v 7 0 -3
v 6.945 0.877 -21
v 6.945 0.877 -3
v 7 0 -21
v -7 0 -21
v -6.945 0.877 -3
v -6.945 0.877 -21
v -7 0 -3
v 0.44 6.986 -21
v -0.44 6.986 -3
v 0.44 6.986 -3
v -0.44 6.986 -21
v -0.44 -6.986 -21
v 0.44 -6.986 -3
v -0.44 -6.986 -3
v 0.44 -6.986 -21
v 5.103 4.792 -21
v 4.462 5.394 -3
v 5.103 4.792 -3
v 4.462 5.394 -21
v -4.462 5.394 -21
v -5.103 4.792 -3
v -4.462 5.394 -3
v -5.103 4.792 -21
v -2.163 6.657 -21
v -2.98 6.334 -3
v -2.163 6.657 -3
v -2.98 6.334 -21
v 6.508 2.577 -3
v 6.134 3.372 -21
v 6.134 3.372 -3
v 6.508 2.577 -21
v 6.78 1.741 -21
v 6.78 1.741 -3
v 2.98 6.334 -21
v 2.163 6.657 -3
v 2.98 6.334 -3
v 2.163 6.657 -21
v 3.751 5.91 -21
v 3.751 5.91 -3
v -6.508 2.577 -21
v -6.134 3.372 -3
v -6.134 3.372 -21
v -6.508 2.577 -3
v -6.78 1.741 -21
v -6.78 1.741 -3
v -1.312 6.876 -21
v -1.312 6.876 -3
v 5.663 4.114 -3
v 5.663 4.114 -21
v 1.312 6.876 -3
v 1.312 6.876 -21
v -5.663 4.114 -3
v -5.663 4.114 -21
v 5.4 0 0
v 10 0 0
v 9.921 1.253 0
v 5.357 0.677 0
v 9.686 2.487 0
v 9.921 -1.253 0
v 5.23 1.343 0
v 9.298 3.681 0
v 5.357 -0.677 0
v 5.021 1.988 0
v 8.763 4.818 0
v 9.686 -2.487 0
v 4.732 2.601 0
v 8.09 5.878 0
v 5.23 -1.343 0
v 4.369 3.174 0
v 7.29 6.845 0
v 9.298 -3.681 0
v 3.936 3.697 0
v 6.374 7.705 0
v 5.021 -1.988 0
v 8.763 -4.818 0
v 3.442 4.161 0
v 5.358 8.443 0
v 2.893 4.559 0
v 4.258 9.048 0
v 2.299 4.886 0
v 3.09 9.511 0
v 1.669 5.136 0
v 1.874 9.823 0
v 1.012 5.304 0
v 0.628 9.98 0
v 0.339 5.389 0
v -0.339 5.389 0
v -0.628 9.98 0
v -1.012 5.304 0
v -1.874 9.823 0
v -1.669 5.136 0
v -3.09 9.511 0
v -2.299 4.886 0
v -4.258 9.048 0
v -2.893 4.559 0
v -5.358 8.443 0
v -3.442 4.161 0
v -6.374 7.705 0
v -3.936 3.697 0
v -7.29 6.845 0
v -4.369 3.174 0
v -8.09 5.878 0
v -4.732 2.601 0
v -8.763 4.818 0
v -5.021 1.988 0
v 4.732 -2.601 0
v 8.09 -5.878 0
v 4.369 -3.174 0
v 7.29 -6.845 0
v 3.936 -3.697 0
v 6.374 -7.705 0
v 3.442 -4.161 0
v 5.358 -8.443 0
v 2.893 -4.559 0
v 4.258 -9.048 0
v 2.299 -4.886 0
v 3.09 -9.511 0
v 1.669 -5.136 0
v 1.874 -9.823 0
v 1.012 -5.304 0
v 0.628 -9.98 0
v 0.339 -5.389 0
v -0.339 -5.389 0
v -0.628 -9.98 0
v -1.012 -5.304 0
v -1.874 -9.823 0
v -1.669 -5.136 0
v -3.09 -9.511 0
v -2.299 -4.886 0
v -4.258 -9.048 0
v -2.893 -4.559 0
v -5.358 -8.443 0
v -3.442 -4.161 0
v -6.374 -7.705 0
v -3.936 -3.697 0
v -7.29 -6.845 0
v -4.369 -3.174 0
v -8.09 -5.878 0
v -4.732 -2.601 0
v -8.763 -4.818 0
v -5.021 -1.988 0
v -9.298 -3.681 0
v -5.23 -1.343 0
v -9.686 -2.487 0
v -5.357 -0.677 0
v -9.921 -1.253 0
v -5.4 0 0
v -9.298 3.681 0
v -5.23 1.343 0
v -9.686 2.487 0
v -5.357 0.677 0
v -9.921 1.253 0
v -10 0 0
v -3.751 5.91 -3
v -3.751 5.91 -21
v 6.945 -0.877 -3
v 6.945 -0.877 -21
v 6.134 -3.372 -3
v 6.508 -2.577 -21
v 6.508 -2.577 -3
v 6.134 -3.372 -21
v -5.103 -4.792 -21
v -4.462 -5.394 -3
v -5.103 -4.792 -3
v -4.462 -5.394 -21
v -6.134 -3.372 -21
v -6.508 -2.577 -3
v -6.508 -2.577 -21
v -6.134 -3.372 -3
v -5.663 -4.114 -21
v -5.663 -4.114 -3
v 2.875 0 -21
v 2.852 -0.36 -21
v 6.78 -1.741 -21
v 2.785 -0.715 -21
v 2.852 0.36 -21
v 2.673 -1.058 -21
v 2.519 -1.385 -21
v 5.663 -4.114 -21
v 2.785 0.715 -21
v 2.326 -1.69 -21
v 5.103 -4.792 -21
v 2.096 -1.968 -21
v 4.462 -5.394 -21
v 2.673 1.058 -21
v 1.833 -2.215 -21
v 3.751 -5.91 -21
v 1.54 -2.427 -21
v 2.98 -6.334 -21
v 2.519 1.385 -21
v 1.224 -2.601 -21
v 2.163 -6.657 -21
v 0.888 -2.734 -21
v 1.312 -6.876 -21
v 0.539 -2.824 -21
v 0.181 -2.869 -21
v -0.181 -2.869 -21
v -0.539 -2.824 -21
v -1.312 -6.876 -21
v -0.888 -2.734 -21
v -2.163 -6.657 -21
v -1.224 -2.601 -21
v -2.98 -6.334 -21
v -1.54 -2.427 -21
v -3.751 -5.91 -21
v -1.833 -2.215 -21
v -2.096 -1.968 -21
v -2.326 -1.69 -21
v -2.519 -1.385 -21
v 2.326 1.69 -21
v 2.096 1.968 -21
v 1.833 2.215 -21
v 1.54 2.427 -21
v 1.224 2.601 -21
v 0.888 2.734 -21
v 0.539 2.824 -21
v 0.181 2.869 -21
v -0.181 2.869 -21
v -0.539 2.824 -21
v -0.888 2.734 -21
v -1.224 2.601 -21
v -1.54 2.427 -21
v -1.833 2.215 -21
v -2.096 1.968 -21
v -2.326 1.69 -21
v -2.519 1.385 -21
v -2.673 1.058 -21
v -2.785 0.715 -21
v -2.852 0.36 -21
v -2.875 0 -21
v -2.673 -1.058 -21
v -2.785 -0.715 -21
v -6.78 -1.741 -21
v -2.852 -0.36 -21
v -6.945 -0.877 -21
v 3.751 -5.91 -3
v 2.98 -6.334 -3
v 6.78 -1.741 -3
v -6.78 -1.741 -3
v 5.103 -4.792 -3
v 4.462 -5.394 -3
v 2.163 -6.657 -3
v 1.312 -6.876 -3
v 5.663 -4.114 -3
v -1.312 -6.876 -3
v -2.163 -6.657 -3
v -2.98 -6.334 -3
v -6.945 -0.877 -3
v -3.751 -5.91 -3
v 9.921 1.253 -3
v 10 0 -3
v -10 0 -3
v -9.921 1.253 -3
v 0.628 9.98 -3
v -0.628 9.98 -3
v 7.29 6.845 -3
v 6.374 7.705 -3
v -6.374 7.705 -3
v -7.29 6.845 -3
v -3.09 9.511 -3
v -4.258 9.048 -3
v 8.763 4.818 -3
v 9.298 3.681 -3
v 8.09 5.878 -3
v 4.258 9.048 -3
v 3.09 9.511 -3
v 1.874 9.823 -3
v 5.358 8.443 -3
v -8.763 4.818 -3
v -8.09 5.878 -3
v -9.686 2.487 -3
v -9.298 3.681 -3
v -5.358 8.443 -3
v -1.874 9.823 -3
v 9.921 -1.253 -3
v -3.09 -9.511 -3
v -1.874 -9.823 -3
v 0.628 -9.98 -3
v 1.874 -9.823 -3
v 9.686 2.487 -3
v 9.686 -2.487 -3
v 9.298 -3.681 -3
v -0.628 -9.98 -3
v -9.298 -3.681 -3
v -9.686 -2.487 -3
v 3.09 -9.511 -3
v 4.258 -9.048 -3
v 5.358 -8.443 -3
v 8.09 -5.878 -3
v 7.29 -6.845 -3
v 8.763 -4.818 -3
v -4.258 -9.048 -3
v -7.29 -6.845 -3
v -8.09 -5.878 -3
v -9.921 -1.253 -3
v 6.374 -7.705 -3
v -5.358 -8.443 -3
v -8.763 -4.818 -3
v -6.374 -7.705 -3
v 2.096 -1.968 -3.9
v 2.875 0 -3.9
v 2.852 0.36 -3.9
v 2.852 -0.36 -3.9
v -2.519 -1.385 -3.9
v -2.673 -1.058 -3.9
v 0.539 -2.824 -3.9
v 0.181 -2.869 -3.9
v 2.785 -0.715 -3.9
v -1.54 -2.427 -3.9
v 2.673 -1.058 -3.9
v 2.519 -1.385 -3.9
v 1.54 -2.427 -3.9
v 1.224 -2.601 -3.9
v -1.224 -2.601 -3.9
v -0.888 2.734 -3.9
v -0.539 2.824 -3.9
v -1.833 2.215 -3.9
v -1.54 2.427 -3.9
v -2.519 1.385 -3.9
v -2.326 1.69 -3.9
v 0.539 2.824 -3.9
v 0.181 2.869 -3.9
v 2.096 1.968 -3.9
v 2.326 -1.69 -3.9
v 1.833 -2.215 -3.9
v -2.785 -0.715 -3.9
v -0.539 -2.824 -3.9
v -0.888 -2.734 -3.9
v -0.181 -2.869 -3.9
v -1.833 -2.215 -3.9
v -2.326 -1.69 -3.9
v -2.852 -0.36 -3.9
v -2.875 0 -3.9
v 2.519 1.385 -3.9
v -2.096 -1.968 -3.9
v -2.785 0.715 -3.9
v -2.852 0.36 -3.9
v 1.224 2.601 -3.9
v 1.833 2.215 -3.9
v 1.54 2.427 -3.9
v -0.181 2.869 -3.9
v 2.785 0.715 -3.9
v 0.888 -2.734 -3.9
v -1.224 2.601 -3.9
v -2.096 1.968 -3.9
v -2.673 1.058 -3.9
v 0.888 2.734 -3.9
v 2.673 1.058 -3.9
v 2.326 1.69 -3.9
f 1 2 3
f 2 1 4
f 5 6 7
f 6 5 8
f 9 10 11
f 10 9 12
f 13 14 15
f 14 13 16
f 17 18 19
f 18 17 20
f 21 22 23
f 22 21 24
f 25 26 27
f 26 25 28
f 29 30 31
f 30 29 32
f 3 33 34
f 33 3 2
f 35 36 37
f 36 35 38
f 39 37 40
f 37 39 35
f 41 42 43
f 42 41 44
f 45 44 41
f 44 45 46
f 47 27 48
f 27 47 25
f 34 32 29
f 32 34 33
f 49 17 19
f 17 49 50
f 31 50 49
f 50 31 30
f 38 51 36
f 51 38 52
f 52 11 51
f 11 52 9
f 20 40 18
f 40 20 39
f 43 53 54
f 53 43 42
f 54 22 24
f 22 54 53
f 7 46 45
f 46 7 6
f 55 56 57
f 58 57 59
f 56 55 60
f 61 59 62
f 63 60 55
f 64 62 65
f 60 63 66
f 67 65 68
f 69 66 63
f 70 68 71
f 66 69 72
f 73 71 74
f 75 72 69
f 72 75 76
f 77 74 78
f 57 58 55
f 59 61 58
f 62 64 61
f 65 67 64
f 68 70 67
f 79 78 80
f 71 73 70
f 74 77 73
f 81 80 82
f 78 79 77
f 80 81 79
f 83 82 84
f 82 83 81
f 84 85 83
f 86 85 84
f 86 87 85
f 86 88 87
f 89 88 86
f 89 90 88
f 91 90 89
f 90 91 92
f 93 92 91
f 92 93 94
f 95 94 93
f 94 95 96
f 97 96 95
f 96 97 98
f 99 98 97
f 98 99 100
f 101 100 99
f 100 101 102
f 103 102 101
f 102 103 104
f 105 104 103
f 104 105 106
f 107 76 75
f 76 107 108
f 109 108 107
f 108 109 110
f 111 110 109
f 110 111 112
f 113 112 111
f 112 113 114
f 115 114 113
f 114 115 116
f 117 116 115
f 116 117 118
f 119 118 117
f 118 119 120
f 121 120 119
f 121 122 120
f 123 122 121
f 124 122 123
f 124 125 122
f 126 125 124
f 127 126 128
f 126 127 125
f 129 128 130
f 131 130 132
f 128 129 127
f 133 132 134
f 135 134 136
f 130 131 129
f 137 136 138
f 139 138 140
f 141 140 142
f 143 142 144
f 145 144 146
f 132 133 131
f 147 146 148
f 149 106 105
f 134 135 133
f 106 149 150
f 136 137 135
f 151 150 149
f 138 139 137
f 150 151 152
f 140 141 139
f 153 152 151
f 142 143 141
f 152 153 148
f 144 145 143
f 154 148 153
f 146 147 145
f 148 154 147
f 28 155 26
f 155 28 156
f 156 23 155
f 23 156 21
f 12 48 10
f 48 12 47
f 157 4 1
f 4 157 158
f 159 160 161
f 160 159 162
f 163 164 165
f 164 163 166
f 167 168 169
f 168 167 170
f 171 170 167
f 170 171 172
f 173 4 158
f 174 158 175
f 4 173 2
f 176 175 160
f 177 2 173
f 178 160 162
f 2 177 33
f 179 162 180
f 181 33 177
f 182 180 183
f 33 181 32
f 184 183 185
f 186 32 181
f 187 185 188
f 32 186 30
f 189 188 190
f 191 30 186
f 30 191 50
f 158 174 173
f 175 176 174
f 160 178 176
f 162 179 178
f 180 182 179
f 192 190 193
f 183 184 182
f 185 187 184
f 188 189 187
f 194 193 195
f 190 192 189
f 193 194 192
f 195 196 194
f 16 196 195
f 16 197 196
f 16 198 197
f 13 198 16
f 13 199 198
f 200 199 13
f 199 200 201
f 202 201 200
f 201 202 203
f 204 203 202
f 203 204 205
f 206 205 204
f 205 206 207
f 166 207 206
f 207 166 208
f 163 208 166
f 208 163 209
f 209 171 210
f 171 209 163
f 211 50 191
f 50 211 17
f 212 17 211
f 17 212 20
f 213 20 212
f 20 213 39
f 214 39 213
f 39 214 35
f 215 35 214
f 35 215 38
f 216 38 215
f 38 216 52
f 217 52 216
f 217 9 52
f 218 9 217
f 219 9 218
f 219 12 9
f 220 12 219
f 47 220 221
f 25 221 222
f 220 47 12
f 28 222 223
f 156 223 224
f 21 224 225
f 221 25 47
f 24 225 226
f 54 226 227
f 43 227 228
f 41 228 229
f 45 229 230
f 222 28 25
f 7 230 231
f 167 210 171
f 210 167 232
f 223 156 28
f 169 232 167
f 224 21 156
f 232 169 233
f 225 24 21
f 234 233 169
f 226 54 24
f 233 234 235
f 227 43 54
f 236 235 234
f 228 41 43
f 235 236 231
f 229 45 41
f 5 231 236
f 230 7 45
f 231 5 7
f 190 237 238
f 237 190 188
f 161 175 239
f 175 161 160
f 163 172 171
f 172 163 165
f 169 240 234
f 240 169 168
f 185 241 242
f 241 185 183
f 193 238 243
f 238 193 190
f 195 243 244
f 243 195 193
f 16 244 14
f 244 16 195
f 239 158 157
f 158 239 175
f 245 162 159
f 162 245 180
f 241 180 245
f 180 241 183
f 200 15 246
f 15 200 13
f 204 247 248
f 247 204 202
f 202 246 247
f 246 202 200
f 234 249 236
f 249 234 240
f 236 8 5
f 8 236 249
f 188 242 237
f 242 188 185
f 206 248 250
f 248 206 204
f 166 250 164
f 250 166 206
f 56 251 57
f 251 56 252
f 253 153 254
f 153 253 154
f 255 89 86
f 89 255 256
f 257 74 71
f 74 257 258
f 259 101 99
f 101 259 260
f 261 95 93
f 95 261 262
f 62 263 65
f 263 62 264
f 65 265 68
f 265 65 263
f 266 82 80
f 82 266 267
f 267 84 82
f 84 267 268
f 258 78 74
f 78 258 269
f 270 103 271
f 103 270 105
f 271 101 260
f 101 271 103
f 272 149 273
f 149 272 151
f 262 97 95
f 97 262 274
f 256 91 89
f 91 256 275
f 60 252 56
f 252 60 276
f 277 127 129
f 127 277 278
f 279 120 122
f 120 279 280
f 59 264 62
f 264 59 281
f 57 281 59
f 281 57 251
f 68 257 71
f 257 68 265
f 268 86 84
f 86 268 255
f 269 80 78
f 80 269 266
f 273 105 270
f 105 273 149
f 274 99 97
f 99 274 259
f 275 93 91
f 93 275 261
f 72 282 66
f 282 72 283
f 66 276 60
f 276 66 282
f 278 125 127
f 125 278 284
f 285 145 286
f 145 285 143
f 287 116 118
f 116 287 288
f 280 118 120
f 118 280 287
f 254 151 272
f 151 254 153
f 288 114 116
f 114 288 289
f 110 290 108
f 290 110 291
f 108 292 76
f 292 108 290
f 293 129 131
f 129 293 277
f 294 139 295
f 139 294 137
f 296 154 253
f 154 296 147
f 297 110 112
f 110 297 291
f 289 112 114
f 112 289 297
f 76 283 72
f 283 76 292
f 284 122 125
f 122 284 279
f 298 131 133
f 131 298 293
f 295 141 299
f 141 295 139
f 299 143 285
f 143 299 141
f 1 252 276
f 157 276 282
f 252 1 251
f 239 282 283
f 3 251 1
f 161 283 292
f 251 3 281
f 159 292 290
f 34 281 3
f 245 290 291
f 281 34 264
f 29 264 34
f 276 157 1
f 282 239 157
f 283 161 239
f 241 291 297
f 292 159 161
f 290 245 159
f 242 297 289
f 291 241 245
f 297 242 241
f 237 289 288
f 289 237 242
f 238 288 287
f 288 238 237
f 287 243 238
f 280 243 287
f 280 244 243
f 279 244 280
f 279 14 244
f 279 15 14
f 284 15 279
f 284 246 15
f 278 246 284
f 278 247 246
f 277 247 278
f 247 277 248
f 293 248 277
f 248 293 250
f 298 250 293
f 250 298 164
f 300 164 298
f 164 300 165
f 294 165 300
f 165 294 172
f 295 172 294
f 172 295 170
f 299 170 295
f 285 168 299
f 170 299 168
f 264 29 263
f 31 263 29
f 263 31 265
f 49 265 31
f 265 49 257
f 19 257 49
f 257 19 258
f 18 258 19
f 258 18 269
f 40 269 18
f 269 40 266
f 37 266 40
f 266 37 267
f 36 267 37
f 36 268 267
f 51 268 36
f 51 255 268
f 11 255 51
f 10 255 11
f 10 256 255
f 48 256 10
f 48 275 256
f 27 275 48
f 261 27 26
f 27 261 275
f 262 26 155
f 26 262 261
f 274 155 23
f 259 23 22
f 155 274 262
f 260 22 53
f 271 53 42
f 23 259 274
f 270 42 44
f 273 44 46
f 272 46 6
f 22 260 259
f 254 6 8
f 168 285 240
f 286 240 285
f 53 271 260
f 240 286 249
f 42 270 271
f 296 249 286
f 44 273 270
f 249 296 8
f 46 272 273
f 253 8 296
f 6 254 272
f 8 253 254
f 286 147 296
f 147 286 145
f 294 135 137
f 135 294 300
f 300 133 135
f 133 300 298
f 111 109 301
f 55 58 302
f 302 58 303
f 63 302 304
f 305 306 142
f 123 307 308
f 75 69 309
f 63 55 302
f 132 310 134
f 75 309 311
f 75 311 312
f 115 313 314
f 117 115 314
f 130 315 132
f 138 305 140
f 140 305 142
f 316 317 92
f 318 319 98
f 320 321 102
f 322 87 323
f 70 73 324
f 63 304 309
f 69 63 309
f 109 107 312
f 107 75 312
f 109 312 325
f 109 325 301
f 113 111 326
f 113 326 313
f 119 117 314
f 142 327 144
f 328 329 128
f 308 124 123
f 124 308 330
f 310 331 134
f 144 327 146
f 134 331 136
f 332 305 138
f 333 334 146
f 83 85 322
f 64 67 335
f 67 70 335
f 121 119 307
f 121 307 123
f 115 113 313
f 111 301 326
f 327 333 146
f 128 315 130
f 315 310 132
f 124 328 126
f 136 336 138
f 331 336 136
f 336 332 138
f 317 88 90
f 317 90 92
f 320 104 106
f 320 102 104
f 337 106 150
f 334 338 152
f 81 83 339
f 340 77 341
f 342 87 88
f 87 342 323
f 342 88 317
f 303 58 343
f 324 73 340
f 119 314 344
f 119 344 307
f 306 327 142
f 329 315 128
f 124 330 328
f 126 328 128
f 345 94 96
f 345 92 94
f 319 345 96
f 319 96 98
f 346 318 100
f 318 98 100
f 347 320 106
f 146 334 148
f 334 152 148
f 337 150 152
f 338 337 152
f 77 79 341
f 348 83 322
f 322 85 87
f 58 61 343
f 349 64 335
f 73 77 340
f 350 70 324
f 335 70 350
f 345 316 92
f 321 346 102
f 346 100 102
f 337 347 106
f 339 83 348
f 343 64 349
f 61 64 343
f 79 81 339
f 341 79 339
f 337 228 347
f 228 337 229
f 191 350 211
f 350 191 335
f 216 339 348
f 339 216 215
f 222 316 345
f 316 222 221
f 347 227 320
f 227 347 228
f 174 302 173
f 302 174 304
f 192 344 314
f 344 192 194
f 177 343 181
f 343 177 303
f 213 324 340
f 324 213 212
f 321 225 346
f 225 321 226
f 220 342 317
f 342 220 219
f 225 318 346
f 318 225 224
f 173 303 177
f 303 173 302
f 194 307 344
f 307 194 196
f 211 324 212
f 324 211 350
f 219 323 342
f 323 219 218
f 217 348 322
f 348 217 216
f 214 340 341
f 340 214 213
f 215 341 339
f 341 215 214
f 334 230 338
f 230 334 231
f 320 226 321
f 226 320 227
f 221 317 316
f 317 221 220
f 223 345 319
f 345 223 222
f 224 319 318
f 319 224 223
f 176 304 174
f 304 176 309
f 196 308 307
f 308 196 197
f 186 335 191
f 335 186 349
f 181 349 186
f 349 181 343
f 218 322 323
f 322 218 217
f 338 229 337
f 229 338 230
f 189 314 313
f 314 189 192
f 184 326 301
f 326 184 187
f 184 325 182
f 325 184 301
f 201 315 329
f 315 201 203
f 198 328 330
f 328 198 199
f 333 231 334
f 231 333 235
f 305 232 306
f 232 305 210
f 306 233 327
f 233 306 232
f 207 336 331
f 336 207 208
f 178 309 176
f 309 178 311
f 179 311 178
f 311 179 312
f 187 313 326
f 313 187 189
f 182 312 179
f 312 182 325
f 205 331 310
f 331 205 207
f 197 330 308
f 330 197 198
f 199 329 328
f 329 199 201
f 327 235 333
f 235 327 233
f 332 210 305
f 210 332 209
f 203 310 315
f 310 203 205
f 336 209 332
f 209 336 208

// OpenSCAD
$fn = 50;


difference() {
	union() {
		translate(v = [0, 0, -21.0000000000]) {
			cylinder(h = 21, r = 7.0000000000);
		}
		translate(v = [0, 0, -3.0000000000]) {
			cylinder(h = 3, r = 10.0000000000);
		}
	}
	union() {
		translate(v = [0, 0, 0]) {
			rotate(a = [0, 0, 0]) {
				difference() {
					union() {
						#translate(v = [0, 0, -21.0000000000]) {
							cylinder(h = 21, r = 2.6000000000);
						}
						#translate(v = [0, 0, -3.9000000000]) {
							cylinder(h = 3.9000000000, r = 7.0000000000, r1 = 2.8750000000, r2 = 5.4000000000);
						}
						#translate(v = [0, 0, -21.0000000000]) {
							cylinder(h = 21, r = 2.8750000000);
						}
						#translate(v = [0, 0, -21.0000000000]) {
							cylinder(h = 21, r = 2.6000000000);
						}
					}
					union();
				}
			}
		}
	}
}
